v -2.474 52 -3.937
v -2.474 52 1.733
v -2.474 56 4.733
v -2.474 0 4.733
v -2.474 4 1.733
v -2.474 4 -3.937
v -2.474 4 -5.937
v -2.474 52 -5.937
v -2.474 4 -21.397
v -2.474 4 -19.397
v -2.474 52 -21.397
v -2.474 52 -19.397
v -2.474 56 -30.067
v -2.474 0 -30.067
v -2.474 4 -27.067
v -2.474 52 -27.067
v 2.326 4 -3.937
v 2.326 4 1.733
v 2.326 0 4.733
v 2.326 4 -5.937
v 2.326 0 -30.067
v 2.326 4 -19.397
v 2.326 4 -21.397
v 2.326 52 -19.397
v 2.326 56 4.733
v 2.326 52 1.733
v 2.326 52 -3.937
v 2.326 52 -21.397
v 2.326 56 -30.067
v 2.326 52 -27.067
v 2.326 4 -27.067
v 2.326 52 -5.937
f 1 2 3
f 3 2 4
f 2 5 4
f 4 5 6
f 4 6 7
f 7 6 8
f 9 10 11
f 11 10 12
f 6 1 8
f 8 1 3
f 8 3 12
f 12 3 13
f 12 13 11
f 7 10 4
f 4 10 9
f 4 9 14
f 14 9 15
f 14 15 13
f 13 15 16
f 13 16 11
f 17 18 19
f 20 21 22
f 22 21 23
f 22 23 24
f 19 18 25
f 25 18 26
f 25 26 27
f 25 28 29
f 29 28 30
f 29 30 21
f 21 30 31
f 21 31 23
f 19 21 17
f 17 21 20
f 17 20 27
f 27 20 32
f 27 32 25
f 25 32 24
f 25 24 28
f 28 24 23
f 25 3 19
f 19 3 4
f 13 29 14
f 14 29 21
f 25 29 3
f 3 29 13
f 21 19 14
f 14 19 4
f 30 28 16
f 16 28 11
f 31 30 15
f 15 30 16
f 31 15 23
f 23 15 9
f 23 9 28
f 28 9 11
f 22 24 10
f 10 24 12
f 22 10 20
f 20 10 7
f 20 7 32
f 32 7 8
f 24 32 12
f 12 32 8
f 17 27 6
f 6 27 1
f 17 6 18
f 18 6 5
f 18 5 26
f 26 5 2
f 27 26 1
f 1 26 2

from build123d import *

# Parameters (mm, degrees)
SKETCH1_W           = 4.8
SKETCH1_H           = 34.8
BOSS_EXTRUDE1_DEPTH = 56
SKETCH2_W           = 5.67
SKETCH2_H           = 48
SKETCH2_W_2         = 13.46
CUT_EXTRUDE1_DEPTH  = 56


with BuildPart() as part:
    # Sketch1 → Boss-Extrude1 (new body)
    with BuildSketch(Plane(origin=(0, 0, 0), x_dir=(1, 0, 0), z_dir=(0, 1, 0))):
        with Locations((-0.073796791, 12.667379679)):
            Rectangle(SKETCH1_W, SKETCH1_H)
    extrude(amount=BOSS_EXTRUDE1_DEPTH)

    # Sketch2 → Cut-Extrude1 (cut)
    with BuildSketch(Plane(origin=(2.326203209, 0, 0), x_dir=(0, 0, -1), z_dir=(1, 0, 0))):
        with Locations((1.102379679, 28)):
            Rectangle(SKETCH2_W, SKETCH2_H)
        with Locations((12.667379679, 28)):
            Rectangle(SKETCH2_W_2, SKETCH2_H)
        with Locations((24.232379679, 28)):
            Rectangle(SKETCH2_W, SKETCH2_H)
    extrude(amount=-CUT_EXTRUDE1_DEPTH, mode=Mode.SUBTRACT)


solid = part.part
